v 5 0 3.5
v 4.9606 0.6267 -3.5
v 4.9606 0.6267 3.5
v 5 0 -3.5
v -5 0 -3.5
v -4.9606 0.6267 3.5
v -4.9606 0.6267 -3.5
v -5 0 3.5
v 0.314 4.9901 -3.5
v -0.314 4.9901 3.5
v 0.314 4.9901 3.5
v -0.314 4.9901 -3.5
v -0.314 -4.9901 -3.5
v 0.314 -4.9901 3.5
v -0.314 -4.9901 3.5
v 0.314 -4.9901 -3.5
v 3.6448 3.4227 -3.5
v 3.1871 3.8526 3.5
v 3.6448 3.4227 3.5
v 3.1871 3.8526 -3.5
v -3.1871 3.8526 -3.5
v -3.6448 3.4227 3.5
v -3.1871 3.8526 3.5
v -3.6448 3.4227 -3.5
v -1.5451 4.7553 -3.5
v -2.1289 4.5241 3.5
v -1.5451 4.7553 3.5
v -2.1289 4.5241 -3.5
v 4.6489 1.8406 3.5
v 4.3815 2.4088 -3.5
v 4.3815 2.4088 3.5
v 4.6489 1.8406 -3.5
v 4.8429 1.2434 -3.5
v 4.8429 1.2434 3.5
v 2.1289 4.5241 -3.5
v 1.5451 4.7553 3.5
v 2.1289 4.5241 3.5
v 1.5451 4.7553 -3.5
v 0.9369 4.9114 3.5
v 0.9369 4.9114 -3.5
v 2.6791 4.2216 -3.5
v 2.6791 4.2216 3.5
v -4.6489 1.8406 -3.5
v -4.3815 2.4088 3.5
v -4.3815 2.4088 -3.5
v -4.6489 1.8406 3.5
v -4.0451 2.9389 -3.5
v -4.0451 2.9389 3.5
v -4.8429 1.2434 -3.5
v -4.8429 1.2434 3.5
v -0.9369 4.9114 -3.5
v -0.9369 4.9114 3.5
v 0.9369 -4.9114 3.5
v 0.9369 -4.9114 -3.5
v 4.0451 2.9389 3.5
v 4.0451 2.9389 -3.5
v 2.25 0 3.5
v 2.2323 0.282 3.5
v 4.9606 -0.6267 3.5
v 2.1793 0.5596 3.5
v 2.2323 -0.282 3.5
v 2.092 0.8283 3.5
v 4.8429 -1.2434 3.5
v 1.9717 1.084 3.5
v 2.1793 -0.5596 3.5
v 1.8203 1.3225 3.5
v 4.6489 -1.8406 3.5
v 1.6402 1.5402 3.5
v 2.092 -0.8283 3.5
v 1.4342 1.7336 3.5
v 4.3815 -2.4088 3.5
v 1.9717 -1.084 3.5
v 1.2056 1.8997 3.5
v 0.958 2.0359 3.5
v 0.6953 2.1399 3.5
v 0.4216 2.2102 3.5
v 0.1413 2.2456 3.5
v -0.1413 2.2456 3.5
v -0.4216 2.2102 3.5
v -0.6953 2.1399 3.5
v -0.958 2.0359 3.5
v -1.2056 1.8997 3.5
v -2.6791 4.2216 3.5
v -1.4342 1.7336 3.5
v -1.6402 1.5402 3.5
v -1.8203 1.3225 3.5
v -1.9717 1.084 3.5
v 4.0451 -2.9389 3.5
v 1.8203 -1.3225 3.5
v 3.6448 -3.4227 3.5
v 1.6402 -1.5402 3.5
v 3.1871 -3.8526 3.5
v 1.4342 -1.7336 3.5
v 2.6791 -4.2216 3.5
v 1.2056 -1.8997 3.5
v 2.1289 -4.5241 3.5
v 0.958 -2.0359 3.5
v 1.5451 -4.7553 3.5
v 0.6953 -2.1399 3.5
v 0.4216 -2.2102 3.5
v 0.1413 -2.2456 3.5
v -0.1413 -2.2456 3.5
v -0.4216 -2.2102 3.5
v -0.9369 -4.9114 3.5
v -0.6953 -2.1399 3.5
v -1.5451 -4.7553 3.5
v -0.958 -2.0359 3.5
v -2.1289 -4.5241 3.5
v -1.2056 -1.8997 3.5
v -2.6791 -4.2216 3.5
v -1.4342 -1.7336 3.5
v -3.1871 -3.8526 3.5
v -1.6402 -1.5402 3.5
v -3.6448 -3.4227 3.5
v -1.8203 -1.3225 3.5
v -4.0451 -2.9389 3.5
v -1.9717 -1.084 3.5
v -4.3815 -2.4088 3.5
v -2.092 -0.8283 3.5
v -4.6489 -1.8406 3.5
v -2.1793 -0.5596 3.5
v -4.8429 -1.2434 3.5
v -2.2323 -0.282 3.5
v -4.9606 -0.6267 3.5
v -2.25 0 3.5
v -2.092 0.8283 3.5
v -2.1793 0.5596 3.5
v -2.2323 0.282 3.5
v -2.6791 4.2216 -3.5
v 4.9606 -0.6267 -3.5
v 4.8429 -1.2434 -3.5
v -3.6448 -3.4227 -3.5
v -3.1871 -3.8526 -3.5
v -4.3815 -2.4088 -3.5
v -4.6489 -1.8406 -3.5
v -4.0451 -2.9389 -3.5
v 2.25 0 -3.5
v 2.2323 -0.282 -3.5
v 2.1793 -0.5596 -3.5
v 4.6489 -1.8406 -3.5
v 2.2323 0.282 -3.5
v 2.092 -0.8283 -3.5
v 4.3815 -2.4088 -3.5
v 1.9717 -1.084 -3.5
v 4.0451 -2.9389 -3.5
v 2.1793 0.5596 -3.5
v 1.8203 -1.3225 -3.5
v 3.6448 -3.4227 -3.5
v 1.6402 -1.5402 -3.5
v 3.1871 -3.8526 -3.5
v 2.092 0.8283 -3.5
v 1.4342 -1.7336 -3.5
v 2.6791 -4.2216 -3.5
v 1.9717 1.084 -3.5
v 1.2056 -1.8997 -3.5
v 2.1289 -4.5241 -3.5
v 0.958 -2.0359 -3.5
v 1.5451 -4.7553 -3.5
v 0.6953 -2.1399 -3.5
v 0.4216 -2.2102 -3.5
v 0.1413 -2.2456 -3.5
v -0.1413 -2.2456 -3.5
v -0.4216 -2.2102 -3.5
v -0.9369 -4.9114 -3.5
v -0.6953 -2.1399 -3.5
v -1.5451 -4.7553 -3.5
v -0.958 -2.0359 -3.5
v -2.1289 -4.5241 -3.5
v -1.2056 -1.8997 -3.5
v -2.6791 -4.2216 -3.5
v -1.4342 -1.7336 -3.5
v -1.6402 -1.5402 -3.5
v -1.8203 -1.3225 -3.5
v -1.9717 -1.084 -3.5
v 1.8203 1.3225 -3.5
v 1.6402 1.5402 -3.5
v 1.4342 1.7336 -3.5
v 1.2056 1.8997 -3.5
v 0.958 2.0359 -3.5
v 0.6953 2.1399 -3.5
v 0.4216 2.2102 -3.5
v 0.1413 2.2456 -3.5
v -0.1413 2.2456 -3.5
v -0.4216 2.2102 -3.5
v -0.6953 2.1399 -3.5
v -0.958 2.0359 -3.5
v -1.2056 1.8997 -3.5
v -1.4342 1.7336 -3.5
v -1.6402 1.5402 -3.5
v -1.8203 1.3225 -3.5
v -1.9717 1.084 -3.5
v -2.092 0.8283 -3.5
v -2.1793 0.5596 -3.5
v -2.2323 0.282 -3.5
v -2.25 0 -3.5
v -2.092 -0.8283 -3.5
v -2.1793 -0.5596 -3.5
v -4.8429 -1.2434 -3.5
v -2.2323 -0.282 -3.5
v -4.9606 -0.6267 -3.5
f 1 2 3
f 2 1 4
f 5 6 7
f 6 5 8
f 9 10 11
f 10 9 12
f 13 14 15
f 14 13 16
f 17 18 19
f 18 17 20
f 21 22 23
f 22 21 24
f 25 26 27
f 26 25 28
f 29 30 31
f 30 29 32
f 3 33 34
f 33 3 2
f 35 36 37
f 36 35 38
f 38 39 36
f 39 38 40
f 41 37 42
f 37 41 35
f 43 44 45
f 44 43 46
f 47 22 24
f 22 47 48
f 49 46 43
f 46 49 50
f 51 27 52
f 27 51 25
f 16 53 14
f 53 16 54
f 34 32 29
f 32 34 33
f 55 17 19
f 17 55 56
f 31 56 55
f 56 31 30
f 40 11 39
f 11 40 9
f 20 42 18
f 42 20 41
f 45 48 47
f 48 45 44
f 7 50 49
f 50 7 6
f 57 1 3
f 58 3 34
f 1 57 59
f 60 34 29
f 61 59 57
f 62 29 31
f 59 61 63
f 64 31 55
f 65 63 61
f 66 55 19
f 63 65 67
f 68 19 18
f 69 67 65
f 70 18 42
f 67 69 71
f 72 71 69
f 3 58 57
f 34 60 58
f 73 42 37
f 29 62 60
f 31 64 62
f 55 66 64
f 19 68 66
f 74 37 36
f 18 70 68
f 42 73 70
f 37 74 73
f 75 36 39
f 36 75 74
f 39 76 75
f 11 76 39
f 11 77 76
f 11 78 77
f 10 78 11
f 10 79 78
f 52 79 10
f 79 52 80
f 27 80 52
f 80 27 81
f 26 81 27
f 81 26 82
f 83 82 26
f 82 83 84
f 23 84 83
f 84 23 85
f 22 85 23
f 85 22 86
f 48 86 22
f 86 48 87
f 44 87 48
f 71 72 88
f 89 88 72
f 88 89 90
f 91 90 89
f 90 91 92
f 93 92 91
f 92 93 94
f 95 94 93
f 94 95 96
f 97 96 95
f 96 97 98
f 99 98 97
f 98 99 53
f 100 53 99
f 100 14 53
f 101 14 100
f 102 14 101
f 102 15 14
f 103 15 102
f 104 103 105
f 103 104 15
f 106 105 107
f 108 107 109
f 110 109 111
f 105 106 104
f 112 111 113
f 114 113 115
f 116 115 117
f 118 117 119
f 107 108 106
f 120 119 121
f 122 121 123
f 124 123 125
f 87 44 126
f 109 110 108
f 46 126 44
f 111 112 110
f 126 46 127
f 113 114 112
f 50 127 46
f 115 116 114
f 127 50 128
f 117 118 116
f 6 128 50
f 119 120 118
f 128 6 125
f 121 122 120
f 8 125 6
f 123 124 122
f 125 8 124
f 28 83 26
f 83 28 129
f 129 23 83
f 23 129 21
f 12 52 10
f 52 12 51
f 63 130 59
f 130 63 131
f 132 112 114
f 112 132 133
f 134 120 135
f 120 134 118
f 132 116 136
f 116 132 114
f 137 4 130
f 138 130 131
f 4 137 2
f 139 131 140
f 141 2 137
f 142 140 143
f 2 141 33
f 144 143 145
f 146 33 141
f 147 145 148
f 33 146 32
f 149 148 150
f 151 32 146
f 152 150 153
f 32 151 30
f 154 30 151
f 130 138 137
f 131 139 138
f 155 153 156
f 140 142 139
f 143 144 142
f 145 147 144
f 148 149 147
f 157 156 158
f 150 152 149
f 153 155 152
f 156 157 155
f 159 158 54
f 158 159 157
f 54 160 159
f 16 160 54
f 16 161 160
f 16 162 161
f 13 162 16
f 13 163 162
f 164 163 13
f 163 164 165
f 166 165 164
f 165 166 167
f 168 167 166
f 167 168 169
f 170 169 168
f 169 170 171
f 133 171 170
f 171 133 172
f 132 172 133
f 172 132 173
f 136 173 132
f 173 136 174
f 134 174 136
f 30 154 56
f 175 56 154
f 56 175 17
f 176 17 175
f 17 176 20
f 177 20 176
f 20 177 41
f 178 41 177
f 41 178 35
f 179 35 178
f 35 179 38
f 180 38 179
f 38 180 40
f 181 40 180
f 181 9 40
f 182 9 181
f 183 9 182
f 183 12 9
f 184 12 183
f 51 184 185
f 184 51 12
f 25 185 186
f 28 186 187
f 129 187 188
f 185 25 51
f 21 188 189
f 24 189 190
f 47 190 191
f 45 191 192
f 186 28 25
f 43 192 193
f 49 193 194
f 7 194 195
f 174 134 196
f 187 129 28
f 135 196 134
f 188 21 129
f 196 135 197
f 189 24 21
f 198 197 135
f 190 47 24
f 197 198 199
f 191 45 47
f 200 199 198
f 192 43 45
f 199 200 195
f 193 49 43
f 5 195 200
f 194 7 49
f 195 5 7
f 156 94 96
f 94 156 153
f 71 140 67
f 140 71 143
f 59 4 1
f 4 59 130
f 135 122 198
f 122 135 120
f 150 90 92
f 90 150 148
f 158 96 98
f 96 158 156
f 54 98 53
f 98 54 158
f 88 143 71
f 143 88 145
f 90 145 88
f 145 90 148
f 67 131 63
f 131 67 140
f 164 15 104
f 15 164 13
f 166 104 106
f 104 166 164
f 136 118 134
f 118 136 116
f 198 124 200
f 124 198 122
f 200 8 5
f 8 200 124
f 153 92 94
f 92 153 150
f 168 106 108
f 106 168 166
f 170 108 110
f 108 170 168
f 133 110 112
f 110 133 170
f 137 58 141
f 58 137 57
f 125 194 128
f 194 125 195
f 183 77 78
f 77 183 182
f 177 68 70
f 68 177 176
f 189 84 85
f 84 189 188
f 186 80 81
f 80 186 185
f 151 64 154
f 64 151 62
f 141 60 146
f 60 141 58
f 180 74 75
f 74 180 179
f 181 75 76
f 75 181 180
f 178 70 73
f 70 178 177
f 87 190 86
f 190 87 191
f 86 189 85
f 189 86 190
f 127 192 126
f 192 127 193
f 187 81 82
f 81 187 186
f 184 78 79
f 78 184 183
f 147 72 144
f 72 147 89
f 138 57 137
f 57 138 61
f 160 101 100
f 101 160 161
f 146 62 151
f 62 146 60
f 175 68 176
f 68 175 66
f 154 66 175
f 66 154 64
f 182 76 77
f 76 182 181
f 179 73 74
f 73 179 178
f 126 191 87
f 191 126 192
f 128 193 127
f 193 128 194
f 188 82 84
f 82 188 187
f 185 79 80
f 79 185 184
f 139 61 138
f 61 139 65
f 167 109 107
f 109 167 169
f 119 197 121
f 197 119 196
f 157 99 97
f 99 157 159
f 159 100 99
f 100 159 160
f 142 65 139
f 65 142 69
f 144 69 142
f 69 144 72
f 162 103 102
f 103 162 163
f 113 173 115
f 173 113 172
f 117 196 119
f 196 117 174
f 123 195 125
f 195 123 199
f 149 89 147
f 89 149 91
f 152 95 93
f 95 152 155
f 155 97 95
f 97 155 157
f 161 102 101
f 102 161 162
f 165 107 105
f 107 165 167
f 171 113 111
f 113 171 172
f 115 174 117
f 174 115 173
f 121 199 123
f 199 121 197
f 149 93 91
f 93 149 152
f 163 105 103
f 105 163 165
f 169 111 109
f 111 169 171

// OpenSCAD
$fn = 50;


difference() {
	union() {
		translate(v = [0, 0, -3.5000000000]) {
			cylinder(h = 7, r = 5.0000000000);
		}
	}
	union() {
		translate(v = [0, 0, -100.0000000000]) {
			cylinder(h = 200, r = 2.2500000000);
		}
	}
}
